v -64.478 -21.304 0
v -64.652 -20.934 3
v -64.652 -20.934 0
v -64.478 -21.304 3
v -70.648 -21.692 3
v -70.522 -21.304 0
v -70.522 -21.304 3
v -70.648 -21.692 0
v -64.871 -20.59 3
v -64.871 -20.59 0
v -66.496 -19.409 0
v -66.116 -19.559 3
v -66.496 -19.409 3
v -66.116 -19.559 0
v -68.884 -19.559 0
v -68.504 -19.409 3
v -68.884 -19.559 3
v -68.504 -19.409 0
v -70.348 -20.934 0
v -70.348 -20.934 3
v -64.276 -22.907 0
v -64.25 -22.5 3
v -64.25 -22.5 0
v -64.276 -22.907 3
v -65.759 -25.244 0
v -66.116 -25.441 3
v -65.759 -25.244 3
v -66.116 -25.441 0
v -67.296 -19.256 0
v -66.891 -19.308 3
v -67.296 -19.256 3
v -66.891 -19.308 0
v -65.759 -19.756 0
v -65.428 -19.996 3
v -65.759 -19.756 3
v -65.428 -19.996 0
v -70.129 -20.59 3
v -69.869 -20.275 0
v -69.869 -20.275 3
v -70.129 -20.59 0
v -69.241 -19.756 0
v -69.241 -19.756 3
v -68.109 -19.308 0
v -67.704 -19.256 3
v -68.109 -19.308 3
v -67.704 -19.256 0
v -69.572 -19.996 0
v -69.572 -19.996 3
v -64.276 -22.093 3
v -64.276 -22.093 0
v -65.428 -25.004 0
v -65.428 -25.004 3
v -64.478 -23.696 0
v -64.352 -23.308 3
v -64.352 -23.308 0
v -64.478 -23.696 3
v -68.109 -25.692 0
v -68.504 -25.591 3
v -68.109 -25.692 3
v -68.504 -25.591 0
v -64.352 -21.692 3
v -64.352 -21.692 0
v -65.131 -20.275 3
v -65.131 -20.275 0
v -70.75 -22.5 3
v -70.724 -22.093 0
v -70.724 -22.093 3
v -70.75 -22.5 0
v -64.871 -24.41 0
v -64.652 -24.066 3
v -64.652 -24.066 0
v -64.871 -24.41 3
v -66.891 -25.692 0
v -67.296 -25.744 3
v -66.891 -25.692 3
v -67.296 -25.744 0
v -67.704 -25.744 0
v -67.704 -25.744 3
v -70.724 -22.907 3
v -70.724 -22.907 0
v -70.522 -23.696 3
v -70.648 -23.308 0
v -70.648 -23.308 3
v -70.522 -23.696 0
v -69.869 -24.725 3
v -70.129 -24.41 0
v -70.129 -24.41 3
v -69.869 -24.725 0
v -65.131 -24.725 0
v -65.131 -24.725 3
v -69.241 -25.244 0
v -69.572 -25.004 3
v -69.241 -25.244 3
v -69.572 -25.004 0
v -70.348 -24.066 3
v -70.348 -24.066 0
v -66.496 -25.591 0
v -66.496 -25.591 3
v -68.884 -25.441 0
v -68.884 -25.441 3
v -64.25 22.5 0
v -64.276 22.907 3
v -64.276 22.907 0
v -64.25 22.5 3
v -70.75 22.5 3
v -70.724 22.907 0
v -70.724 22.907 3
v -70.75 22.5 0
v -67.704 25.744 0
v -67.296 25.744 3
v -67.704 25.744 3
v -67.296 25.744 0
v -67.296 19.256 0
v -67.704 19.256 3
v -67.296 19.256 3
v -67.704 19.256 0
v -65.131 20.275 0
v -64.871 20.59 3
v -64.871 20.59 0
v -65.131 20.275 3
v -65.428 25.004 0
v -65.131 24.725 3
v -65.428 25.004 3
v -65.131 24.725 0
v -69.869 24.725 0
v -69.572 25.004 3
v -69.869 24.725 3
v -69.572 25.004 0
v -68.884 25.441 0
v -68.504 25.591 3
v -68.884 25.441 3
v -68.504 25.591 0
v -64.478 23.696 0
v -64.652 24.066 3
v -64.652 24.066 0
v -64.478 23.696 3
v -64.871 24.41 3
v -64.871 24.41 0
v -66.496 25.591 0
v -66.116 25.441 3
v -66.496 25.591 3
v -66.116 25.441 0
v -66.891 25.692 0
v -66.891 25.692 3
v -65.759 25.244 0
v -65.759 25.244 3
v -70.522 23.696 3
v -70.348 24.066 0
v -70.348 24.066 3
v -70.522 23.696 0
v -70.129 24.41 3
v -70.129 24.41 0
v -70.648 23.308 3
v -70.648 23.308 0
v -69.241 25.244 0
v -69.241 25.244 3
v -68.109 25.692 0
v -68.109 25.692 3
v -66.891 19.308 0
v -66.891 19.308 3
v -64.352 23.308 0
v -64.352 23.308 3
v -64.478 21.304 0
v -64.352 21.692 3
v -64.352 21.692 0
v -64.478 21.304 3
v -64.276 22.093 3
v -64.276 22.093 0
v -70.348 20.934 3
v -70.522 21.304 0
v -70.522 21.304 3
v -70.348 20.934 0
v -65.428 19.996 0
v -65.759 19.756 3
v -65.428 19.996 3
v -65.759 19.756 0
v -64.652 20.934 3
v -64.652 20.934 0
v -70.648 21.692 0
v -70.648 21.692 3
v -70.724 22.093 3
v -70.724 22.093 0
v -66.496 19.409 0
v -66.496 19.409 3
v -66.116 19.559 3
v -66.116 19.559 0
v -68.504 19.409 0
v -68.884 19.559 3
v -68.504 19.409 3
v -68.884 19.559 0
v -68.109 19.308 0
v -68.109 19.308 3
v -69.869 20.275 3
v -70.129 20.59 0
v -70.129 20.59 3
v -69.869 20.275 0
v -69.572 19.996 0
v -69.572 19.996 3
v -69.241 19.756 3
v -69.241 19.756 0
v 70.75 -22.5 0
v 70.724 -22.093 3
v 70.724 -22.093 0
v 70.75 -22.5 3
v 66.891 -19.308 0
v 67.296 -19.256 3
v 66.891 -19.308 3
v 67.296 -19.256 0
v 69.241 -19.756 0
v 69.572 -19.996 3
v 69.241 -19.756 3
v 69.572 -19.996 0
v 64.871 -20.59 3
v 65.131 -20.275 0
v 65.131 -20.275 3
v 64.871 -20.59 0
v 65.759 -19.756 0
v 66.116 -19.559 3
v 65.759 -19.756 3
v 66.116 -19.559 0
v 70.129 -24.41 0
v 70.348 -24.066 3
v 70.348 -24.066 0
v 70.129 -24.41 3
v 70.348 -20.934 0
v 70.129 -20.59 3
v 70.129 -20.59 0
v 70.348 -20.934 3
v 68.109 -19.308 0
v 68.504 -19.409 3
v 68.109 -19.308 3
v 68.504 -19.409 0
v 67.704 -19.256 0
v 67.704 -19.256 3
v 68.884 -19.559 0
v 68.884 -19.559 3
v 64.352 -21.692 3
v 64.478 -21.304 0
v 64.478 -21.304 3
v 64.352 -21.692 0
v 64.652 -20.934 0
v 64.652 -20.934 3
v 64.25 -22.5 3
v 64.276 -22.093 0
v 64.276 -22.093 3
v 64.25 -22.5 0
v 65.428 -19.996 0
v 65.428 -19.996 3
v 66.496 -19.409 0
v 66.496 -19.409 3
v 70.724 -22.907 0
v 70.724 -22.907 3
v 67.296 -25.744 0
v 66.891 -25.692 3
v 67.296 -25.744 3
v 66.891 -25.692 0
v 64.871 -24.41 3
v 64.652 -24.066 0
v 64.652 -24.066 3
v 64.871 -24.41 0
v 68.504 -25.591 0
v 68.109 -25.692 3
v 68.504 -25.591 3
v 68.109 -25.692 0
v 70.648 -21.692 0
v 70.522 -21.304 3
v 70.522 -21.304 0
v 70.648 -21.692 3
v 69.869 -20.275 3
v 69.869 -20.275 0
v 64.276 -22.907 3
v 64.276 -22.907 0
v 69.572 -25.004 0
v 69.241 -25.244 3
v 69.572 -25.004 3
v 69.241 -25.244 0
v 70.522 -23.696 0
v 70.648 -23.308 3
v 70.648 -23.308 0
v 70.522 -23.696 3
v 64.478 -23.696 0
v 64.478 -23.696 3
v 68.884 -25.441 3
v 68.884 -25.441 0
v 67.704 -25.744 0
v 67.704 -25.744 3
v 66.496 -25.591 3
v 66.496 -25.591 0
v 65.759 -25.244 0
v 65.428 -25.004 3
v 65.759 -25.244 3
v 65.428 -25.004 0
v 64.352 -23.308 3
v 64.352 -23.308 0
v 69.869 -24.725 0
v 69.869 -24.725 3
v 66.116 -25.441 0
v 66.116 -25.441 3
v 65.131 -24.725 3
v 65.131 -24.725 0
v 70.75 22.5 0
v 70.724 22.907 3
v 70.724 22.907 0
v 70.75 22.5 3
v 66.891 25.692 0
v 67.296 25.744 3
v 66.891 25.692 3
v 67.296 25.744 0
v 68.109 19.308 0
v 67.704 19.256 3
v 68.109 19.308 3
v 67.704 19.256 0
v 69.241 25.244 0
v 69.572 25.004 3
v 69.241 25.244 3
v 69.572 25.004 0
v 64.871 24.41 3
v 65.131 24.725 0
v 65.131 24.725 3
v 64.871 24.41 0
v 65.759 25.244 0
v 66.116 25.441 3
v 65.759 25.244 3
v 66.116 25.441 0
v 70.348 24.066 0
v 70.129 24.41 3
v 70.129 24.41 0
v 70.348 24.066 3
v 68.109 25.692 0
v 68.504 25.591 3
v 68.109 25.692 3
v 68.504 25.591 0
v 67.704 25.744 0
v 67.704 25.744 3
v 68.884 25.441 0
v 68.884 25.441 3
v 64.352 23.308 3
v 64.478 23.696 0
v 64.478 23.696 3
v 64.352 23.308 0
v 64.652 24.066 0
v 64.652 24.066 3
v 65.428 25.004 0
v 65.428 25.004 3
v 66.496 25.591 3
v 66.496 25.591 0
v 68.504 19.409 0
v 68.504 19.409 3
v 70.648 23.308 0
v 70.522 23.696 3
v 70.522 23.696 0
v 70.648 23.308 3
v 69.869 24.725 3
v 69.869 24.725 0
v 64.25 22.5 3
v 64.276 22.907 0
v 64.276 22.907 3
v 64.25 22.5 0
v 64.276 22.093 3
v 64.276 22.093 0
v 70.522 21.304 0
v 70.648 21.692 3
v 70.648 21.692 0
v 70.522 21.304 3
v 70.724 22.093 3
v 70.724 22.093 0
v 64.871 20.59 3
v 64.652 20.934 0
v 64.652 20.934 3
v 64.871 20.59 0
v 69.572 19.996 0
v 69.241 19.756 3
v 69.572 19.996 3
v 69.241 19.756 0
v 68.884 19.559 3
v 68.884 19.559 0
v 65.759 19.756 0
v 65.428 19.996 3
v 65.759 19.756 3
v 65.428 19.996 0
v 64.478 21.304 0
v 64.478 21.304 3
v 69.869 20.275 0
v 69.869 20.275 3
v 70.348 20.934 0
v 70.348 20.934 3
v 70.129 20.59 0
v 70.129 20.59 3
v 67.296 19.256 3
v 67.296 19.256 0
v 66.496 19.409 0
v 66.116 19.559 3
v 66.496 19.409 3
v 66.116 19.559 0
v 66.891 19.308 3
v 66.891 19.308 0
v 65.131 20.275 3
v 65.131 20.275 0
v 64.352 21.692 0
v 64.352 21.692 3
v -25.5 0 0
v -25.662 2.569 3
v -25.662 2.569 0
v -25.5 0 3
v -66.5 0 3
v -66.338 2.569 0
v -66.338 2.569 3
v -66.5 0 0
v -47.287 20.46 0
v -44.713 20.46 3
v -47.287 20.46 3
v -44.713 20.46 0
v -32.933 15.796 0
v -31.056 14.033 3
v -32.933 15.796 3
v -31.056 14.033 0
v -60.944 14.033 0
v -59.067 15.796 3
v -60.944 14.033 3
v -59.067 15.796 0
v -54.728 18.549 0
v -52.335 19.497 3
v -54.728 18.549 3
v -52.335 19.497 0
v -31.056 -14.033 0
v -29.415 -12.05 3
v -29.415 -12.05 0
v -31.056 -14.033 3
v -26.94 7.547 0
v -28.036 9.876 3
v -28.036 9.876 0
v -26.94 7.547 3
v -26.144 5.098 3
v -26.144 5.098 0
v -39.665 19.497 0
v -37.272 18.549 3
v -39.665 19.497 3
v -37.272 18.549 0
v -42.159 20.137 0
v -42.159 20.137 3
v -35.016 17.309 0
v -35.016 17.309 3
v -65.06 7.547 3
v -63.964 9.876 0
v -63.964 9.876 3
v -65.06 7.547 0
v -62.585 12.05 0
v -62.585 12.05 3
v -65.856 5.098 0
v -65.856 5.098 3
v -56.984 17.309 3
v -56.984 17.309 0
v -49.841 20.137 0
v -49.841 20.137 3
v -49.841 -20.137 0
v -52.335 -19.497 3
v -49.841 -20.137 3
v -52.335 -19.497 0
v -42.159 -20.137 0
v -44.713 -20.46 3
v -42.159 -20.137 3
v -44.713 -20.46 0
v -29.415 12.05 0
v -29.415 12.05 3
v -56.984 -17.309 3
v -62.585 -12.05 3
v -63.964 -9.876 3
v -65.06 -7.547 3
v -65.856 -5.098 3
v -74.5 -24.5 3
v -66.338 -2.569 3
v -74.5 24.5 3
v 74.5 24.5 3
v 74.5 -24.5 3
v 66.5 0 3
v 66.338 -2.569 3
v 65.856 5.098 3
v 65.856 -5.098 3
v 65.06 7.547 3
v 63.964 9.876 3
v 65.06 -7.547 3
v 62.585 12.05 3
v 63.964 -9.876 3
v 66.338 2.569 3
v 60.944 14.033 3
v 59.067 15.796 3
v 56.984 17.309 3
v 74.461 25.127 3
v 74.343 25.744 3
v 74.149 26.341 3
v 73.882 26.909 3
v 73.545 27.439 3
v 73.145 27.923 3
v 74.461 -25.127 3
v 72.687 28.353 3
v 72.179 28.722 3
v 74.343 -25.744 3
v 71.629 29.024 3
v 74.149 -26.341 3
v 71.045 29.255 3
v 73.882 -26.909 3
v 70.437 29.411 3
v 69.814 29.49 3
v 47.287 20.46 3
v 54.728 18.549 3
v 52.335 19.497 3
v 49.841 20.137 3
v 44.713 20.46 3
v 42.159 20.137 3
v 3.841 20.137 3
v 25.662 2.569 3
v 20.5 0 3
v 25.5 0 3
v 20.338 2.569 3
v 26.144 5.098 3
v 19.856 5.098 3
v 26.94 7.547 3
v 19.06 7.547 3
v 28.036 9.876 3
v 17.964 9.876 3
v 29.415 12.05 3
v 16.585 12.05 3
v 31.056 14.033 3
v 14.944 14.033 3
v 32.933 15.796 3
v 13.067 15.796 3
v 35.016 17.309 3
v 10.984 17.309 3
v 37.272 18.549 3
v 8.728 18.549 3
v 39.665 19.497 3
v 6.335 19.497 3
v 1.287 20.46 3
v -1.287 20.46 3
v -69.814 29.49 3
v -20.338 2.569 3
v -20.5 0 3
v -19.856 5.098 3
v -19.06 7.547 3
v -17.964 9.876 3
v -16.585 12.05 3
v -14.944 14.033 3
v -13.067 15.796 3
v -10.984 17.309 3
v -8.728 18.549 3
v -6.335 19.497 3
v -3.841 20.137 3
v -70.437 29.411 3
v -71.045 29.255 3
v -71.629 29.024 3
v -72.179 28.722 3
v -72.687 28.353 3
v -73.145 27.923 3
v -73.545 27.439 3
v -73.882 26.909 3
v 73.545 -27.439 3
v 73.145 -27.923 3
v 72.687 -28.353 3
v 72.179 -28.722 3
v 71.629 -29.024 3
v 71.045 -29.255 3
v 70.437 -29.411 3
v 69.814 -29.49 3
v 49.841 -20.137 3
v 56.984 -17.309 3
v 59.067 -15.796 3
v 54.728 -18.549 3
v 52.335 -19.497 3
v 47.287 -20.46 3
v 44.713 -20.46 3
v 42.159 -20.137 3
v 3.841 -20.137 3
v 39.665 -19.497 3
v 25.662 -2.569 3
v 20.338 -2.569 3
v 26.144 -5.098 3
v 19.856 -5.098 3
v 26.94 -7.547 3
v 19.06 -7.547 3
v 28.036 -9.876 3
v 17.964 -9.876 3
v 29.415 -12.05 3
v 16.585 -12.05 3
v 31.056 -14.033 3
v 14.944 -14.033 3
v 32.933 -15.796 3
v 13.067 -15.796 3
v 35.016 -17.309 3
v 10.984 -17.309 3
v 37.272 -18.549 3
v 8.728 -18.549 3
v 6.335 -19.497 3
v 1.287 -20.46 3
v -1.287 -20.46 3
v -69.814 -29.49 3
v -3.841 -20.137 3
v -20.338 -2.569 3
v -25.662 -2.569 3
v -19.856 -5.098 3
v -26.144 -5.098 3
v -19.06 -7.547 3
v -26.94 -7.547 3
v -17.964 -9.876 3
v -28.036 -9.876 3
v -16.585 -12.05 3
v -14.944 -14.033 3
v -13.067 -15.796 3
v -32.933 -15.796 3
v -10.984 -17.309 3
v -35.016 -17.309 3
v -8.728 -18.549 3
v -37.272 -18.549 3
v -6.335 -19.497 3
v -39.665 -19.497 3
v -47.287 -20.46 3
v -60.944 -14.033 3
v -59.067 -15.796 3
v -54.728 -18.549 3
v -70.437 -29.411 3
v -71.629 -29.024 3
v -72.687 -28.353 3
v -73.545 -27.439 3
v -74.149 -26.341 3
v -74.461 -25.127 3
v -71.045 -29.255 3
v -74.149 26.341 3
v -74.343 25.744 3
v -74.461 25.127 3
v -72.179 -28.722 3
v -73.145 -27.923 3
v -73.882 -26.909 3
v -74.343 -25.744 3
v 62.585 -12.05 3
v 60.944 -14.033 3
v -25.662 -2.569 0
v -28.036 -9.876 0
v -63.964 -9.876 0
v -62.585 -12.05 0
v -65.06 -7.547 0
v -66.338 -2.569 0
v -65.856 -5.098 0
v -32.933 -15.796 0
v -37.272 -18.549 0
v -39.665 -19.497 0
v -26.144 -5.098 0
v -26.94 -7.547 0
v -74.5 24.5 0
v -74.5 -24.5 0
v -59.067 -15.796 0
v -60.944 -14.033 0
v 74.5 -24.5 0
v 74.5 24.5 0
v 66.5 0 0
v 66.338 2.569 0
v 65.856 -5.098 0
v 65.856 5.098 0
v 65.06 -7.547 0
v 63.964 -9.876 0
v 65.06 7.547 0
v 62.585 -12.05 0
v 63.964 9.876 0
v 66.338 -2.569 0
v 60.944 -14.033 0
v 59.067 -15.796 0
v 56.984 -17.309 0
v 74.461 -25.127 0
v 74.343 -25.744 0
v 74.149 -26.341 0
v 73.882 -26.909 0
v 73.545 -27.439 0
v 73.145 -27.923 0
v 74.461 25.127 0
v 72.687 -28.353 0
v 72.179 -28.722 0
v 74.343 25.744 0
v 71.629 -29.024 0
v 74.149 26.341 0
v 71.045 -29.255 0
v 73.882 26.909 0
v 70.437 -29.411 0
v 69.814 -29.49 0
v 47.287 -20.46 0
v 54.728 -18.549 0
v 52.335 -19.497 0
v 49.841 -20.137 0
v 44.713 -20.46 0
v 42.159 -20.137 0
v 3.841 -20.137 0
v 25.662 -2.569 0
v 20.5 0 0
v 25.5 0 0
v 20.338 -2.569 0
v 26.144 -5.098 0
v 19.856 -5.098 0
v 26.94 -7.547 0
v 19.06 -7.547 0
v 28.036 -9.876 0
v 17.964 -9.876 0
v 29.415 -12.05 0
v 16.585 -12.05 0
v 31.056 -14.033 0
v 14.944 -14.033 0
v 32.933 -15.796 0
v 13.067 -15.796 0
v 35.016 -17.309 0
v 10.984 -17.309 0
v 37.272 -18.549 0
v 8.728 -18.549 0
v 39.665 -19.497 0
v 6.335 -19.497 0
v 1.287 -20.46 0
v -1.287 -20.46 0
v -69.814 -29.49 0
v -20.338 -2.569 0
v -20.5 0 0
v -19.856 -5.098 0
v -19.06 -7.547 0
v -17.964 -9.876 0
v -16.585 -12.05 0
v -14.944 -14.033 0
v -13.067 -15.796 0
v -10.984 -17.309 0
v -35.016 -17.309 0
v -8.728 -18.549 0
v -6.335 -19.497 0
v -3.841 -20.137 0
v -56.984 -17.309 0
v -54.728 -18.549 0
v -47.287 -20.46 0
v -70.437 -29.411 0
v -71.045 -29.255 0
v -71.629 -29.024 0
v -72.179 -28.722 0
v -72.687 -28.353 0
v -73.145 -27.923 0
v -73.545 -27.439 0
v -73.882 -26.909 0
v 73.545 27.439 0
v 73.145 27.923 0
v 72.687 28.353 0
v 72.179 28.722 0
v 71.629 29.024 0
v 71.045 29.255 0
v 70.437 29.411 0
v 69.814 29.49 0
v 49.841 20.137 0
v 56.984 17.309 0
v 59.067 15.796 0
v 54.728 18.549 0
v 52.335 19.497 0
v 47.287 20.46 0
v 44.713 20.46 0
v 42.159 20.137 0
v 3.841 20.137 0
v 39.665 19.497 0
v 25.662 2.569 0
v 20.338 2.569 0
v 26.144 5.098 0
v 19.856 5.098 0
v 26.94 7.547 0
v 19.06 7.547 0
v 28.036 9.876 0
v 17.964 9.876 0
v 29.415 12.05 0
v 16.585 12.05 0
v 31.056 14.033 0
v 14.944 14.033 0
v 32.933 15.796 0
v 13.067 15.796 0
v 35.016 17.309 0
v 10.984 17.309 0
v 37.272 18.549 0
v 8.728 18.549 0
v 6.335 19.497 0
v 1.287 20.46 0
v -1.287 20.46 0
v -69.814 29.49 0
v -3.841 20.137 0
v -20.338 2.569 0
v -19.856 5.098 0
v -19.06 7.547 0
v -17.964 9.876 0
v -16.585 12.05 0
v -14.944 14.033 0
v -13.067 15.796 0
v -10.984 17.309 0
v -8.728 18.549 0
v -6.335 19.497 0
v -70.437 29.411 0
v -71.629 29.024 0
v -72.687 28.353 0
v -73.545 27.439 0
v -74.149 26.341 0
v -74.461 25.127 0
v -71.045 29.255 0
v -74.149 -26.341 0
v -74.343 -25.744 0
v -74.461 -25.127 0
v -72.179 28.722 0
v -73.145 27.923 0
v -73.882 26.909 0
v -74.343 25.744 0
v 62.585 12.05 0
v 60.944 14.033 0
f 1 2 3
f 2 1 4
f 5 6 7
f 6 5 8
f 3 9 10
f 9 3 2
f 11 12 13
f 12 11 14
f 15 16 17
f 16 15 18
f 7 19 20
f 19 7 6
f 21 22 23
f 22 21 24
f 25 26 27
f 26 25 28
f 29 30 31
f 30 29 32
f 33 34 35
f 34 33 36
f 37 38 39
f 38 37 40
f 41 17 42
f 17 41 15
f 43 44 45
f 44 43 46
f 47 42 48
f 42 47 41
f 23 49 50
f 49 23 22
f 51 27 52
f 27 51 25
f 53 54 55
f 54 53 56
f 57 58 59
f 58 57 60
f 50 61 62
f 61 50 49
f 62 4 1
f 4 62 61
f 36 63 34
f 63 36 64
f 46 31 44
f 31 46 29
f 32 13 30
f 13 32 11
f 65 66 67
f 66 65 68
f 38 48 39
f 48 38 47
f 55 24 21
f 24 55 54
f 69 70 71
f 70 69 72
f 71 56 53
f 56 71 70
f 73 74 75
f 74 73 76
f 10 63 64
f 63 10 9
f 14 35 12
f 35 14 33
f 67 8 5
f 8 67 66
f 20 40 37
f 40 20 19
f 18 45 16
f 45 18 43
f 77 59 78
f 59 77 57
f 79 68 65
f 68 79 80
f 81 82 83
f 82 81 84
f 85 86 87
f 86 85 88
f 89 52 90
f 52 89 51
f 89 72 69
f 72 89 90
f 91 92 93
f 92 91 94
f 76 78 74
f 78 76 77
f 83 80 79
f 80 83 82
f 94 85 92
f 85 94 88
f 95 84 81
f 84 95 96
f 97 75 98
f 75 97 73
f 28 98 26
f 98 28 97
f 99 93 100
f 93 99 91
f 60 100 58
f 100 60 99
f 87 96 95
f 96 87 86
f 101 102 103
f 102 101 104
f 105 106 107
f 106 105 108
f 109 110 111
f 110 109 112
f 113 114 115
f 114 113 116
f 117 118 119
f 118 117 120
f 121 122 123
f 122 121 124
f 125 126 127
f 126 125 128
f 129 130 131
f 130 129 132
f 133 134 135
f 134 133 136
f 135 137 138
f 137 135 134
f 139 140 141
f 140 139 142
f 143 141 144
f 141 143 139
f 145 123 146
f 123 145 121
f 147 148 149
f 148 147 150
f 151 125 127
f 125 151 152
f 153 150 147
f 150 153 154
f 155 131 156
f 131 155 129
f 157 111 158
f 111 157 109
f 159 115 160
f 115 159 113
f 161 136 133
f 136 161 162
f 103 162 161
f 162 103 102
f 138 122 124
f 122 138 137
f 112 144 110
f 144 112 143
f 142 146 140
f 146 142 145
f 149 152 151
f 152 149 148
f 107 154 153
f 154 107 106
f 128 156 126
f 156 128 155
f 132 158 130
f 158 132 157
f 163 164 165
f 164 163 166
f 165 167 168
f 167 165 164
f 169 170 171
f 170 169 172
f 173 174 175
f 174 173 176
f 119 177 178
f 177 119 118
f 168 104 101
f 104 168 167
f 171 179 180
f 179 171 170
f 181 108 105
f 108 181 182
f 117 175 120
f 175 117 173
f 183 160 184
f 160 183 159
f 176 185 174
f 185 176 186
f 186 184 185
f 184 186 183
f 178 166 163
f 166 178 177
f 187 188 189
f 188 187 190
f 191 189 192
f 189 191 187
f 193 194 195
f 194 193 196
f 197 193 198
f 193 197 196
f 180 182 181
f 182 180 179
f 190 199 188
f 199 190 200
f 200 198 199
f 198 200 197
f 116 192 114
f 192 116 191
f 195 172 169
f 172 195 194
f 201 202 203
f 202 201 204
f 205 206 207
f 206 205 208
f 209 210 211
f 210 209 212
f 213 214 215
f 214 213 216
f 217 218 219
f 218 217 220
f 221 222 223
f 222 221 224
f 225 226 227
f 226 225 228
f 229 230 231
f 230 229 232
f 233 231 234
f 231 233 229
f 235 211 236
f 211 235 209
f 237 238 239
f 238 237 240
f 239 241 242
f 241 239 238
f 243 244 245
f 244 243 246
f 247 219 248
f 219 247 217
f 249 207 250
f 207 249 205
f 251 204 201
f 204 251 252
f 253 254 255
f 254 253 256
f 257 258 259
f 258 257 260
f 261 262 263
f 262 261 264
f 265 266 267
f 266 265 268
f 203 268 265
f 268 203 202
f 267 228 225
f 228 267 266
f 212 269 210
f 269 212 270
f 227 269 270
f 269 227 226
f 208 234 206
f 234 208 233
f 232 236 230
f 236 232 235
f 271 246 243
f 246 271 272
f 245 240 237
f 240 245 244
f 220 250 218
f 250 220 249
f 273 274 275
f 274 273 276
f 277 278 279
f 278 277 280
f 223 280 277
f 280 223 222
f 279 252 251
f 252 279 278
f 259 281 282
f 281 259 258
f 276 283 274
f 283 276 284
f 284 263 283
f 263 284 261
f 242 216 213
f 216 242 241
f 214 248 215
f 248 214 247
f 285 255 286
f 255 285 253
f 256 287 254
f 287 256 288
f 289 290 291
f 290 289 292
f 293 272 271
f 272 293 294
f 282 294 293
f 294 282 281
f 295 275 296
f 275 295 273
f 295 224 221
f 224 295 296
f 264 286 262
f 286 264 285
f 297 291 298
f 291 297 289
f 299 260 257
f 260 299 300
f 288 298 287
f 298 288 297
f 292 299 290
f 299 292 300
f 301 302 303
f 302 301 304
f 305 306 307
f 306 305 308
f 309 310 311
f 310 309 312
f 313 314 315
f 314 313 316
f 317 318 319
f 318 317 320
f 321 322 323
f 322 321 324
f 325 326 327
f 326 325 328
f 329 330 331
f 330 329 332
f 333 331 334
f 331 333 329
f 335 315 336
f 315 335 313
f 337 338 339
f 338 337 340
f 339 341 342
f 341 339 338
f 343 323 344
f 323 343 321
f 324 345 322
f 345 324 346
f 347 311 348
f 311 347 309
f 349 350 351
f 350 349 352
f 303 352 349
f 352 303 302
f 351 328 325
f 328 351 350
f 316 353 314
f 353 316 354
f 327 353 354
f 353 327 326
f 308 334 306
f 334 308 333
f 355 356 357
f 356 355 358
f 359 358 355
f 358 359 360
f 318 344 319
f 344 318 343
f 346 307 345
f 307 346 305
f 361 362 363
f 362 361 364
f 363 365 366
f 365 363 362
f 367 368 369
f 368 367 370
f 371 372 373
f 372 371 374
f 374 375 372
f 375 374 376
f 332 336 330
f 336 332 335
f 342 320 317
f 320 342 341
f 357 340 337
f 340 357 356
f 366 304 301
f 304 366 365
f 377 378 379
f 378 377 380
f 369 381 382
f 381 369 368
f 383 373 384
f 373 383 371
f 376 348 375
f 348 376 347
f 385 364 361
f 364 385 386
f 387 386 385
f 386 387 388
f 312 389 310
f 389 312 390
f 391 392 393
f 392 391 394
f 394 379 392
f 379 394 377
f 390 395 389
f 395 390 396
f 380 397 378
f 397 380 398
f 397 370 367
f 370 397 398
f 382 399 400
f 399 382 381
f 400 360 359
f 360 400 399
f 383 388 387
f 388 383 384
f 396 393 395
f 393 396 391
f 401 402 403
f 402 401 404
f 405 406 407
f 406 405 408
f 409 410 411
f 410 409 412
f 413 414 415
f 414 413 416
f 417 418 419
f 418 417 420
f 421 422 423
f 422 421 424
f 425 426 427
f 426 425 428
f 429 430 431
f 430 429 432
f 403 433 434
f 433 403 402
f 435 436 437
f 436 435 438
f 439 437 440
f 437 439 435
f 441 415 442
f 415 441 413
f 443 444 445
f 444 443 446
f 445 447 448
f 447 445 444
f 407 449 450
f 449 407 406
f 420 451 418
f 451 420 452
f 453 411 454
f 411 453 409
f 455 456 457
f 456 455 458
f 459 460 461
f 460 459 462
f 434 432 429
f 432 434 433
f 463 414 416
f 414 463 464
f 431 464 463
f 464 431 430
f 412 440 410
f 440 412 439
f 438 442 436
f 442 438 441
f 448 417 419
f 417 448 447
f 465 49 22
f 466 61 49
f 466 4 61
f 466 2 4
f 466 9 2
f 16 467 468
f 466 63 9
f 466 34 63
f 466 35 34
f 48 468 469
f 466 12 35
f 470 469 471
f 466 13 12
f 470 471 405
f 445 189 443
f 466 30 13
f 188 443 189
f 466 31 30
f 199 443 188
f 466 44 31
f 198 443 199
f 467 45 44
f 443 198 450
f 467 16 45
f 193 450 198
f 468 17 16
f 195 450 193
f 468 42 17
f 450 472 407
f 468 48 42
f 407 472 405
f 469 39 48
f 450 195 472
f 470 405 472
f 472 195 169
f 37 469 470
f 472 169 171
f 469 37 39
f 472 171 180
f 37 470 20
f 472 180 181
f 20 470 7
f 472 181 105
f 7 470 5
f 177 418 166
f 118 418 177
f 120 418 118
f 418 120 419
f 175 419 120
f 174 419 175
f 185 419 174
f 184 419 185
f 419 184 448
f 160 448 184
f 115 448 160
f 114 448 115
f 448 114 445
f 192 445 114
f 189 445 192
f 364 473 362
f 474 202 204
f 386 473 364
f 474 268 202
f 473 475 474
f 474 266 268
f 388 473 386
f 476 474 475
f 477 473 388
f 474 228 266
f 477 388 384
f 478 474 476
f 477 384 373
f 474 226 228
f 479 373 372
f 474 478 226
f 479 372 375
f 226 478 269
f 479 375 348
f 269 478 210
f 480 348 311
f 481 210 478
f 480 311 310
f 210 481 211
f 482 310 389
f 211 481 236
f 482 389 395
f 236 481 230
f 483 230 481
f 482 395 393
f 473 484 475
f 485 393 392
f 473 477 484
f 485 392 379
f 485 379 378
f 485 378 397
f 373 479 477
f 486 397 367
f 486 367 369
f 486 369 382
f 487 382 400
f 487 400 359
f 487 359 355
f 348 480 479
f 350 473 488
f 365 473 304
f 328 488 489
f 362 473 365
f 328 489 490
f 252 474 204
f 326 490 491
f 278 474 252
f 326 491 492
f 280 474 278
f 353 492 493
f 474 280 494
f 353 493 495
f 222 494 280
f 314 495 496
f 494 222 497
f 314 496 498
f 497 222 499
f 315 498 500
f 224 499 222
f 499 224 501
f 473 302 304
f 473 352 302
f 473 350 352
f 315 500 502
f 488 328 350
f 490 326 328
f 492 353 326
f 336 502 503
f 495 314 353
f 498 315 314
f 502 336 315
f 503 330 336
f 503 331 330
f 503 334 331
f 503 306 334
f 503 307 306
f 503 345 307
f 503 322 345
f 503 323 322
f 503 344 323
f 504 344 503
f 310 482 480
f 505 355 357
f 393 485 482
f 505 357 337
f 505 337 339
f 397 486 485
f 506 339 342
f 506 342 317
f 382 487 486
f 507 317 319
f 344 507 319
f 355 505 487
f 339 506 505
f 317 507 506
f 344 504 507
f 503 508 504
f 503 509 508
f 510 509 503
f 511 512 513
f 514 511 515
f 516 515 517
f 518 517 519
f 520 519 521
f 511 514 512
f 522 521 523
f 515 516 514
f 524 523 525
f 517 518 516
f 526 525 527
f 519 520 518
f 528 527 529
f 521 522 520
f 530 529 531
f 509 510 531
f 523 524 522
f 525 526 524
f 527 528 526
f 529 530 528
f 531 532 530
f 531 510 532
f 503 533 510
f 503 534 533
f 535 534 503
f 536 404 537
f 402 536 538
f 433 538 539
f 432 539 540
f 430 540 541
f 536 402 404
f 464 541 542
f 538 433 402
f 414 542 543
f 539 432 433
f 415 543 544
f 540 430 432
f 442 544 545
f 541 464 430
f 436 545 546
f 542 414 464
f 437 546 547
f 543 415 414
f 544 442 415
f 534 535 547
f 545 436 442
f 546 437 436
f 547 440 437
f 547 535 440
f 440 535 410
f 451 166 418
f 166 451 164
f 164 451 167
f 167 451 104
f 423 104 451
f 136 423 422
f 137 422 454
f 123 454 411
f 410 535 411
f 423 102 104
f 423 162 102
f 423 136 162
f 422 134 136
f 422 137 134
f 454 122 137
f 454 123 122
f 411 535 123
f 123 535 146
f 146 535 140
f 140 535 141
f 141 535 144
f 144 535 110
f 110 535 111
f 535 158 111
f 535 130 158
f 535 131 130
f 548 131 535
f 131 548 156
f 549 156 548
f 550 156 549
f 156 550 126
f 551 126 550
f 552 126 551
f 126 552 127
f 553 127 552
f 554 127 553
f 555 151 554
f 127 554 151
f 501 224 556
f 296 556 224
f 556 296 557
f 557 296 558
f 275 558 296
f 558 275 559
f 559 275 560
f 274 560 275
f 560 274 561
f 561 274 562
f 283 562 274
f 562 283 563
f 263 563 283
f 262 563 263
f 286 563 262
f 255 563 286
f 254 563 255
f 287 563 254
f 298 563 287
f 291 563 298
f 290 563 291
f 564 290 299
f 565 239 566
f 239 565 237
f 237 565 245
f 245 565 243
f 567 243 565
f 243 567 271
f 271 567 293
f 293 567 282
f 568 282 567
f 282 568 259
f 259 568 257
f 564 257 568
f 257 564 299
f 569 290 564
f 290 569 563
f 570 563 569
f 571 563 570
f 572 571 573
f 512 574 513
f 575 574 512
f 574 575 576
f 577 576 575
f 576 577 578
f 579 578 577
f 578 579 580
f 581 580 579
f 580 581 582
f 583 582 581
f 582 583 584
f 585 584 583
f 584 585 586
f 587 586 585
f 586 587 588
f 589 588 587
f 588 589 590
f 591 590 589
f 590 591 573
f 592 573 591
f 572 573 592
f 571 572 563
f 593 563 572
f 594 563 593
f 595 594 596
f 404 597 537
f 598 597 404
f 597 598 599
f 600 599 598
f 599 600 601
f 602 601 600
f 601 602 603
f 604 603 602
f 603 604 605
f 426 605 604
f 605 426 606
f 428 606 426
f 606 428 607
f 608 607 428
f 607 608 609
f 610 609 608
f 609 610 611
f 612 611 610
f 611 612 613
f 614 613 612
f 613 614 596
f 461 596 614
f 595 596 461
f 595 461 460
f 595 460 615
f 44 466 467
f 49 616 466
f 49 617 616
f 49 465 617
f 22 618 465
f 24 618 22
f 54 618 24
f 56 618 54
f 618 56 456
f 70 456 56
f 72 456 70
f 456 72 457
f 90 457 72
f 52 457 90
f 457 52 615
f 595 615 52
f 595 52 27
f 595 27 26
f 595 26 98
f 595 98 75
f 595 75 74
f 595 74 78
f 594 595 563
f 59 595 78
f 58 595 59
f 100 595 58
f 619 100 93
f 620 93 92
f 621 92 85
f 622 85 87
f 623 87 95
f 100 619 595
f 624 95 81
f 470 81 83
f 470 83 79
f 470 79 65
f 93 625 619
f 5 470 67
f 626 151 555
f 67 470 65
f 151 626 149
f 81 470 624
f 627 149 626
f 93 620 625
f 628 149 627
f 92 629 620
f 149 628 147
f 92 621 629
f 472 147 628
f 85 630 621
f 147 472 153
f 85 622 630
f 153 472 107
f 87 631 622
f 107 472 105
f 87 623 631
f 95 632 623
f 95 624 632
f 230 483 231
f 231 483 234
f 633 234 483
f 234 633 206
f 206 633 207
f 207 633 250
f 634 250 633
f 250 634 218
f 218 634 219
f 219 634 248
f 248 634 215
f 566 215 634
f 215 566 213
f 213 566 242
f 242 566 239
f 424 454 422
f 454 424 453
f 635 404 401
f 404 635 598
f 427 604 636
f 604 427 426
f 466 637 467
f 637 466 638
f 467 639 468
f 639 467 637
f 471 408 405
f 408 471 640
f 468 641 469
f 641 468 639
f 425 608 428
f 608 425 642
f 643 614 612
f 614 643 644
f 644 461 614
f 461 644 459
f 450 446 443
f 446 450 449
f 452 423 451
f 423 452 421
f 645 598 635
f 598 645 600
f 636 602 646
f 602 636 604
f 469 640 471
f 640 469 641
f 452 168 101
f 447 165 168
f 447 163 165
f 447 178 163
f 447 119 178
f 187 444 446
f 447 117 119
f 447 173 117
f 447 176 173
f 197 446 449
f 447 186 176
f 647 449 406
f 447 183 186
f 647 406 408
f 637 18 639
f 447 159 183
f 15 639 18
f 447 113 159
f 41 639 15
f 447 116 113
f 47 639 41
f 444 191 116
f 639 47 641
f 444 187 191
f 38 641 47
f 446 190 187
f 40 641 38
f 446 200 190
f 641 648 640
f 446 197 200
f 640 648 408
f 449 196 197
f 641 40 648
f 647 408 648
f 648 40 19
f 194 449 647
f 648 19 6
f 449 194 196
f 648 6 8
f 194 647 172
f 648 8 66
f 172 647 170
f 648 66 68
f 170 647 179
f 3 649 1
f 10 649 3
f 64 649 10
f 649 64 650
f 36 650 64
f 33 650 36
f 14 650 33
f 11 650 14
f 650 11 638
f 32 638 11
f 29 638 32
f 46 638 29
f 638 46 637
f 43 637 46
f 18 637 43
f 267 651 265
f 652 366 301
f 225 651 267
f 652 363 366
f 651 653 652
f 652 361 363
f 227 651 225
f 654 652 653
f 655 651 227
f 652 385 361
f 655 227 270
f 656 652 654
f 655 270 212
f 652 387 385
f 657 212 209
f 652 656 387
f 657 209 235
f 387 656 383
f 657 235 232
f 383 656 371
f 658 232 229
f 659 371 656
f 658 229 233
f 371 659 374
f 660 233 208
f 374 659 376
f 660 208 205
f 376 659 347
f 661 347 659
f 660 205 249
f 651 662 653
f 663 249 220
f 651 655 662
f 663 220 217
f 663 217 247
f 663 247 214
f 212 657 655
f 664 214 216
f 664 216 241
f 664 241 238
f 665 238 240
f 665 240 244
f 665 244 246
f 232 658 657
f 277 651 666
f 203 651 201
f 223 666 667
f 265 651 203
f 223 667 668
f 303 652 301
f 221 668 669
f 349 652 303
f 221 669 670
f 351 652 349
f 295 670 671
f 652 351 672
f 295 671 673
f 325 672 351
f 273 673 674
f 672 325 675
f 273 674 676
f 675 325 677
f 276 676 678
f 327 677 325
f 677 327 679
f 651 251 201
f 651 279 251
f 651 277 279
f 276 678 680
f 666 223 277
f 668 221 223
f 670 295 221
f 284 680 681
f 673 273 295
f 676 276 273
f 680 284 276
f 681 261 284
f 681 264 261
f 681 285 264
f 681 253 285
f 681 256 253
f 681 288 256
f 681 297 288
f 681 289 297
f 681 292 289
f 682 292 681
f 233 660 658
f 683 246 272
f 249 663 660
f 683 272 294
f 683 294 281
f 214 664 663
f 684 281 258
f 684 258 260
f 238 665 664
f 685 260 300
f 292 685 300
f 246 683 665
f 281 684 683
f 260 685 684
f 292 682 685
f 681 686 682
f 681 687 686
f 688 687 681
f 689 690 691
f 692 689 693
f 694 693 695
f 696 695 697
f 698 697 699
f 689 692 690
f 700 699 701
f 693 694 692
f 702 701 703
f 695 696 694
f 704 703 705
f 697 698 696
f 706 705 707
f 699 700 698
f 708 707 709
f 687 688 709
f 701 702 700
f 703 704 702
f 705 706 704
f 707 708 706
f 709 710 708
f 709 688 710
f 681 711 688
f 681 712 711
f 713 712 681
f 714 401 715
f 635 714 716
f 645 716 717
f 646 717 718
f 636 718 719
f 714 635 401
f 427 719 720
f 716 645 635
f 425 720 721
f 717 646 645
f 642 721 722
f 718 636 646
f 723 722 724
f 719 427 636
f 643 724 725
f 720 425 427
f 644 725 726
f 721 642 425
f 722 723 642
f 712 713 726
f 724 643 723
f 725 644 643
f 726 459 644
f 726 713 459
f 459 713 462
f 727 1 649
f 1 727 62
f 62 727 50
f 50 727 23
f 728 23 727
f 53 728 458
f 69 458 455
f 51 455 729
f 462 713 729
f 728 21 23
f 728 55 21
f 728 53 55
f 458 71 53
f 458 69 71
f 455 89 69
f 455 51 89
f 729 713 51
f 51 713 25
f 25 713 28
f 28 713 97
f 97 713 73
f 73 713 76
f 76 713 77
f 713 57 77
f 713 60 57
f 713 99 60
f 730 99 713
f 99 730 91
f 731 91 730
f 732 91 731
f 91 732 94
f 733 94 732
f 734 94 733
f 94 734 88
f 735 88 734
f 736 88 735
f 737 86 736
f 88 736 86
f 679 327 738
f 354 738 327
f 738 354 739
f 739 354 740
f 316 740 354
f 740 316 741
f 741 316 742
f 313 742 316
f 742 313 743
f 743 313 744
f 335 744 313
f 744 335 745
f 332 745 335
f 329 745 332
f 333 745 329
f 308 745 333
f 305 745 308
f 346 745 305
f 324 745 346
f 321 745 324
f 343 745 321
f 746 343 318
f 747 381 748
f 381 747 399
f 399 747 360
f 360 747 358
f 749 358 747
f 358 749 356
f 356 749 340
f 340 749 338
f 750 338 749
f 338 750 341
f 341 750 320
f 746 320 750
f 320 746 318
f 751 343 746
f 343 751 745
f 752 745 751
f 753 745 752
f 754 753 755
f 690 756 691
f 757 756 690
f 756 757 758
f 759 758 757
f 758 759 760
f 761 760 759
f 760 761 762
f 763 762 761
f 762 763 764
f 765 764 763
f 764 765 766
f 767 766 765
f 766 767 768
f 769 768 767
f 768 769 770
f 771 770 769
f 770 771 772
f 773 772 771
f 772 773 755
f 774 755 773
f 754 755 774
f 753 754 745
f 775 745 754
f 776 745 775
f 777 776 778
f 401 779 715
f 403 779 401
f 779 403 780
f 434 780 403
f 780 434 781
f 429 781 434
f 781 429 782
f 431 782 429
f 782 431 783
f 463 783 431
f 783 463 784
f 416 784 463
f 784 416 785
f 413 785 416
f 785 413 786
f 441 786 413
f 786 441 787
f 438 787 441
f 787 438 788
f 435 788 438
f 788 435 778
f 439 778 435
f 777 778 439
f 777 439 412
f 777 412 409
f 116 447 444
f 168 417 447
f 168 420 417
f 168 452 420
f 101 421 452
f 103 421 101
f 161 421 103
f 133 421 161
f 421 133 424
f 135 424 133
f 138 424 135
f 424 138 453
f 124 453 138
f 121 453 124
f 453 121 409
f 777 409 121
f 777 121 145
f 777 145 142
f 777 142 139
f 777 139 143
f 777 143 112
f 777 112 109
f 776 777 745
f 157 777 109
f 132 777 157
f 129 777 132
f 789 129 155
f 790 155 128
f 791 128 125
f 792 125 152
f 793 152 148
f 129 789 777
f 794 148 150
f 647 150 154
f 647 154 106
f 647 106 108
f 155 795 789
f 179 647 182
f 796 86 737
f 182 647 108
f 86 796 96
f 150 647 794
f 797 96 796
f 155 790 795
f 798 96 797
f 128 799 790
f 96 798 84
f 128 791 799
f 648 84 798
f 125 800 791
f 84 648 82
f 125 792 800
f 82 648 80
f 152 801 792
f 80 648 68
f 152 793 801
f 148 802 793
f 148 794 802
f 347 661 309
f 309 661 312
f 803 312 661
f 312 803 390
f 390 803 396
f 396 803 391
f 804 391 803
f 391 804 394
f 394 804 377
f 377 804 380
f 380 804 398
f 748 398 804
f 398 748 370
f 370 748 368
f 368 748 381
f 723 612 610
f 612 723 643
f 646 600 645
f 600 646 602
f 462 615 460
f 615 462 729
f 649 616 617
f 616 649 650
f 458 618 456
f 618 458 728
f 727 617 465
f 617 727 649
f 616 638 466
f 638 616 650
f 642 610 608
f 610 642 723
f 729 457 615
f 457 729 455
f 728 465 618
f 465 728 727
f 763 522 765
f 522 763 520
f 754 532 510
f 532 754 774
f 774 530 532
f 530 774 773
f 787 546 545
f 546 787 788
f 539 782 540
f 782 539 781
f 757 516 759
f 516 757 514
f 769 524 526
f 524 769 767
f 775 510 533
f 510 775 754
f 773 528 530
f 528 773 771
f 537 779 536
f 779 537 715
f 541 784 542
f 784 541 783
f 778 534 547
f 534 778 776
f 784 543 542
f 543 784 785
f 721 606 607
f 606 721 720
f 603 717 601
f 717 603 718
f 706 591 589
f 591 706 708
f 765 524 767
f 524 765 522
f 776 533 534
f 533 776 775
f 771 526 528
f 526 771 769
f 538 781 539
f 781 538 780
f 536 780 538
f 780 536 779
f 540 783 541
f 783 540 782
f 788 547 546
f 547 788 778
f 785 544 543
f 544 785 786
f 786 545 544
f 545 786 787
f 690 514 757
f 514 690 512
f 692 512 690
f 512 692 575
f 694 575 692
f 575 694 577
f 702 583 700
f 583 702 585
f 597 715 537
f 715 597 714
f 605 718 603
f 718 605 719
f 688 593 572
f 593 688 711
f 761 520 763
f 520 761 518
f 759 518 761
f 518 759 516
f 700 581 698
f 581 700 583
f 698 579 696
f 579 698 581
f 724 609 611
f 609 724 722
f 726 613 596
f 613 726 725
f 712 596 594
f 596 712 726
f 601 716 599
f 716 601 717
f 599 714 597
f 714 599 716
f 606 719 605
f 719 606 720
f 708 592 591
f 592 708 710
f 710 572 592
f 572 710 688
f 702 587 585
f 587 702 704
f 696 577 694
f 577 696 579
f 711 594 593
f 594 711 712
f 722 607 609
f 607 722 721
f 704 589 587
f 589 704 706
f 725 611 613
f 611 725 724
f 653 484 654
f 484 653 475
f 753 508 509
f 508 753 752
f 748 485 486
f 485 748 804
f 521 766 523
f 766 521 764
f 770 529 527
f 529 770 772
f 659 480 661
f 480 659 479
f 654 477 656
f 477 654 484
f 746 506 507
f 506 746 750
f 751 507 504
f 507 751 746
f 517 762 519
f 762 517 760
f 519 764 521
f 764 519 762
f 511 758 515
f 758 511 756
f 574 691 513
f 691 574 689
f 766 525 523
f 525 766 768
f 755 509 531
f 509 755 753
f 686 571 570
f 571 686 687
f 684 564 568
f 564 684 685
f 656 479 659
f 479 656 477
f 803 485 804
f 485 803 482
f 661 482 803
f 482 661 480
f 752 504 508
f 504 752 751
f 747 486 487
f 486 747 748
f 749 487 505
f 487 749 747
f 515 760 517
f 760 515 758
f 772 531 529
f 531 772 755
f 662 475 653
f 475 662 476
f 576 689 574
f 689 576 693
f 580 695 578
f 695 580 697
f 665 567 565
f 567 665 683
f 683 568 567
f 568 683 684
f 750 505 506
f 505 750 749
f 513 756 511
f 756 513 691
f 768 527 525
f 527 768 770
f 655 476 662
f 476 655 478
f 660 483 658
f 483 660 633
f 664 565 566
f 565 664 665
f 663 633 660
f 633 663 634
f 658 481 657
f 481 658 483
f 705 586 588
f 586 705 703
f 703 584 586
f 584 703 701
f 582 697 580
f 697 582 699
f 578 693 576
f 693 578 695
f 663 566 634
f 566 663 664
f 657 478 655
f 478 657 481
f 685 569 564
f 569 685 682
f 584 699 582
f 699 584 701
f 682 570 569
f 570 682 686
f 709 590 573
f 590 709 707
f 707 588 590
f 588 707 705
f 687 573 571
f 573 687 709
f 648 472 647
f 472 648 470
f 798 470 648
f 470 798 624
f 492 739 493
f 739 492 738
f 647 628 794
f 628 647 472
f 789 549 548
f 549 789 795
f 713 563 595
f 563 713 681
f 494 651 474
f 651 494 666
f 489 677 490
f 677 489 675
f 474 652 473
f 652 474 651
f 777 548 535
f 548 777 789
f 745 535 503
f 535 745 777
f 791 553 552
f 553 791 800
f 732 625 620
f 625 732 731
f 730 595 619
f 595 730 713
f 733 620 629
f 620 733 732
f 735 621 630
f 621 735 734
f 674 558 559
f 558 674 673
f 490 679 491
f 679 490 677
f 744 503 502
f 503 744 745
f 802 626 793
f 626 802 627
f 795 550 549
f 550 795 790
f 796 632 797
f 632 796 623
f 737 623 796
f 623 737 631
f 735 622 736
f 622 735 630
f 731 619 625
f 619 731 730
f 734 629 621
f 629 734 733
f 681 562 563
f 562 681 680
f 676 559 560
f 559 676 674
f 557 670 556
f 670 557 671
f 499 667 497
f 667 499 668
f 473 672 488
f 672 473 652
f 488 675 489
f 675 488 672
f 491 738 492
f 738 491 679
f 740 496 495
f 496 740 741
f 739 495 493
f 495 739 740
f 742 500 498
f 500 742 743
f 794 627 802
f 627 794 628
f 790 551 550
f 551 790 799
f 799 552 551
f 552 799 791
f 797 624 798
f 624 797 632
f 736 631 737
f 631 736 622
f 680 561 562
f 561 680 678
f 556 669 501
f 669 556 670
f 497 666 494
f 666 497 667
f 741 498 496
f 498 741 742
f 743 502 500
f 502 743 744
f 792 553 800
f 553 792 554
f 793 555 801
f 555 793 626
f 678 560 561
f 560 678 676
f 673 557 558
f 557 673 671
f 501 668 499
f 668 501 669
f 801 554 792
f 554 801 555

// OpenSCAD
$fn = 50;


difference() {
	union() {
		hull() {
			translate(v = [-69.5000000000, 24.5000000000, 0]) {
				cylinder(h = 3, r = 5);
			}
			translate(v = [69.5000000000, 24.5000000000, 0]) {
				cylinder(h = 3, r = 5);
			}
			translate(v = [-69.5000000000, -24.5000000000, 0]) {
				cylinder(h = 3, r = 5);
			}
			translate(v = [69.5000000000, -24.5000000000, 0]) {
				cylinder(h = 3, r = 5);
			}
		}
	}
	union() {
		#translate(v = [-67.5000000000, -22.5000000000, -100.0000000000]) {
			cylinder(h = 200, r = 3.2500000000);
		}
		#translate(v = [-67.5000000000, 22.5000000000, -100.0000000000]) {
			cylinder(h = 200, r = 3.2500000000);
		}
		#translate(v = [67.5000000000, -22.5000000000, -100.0000000000]) {
			cylinder(h = 200, r = 3.2500000000);
		}
		#translate(v = [67.5000000000, 22.5000000000, -100.0000000000]) {
			cylinder(h = 200, r = 3.2500000000);
		}
		#translate(v = [-46.0000000000, 0, 0]) {
			cylinder(h = 3, r = 20.5000000000);
		}
		#cylinder(h = 3, r = 20.5000000000);
		#translate(v = [46.0000000000, 0, 0]) {
			cylinder(h = 3, r = 20.5000000000);
		}
	}
}
